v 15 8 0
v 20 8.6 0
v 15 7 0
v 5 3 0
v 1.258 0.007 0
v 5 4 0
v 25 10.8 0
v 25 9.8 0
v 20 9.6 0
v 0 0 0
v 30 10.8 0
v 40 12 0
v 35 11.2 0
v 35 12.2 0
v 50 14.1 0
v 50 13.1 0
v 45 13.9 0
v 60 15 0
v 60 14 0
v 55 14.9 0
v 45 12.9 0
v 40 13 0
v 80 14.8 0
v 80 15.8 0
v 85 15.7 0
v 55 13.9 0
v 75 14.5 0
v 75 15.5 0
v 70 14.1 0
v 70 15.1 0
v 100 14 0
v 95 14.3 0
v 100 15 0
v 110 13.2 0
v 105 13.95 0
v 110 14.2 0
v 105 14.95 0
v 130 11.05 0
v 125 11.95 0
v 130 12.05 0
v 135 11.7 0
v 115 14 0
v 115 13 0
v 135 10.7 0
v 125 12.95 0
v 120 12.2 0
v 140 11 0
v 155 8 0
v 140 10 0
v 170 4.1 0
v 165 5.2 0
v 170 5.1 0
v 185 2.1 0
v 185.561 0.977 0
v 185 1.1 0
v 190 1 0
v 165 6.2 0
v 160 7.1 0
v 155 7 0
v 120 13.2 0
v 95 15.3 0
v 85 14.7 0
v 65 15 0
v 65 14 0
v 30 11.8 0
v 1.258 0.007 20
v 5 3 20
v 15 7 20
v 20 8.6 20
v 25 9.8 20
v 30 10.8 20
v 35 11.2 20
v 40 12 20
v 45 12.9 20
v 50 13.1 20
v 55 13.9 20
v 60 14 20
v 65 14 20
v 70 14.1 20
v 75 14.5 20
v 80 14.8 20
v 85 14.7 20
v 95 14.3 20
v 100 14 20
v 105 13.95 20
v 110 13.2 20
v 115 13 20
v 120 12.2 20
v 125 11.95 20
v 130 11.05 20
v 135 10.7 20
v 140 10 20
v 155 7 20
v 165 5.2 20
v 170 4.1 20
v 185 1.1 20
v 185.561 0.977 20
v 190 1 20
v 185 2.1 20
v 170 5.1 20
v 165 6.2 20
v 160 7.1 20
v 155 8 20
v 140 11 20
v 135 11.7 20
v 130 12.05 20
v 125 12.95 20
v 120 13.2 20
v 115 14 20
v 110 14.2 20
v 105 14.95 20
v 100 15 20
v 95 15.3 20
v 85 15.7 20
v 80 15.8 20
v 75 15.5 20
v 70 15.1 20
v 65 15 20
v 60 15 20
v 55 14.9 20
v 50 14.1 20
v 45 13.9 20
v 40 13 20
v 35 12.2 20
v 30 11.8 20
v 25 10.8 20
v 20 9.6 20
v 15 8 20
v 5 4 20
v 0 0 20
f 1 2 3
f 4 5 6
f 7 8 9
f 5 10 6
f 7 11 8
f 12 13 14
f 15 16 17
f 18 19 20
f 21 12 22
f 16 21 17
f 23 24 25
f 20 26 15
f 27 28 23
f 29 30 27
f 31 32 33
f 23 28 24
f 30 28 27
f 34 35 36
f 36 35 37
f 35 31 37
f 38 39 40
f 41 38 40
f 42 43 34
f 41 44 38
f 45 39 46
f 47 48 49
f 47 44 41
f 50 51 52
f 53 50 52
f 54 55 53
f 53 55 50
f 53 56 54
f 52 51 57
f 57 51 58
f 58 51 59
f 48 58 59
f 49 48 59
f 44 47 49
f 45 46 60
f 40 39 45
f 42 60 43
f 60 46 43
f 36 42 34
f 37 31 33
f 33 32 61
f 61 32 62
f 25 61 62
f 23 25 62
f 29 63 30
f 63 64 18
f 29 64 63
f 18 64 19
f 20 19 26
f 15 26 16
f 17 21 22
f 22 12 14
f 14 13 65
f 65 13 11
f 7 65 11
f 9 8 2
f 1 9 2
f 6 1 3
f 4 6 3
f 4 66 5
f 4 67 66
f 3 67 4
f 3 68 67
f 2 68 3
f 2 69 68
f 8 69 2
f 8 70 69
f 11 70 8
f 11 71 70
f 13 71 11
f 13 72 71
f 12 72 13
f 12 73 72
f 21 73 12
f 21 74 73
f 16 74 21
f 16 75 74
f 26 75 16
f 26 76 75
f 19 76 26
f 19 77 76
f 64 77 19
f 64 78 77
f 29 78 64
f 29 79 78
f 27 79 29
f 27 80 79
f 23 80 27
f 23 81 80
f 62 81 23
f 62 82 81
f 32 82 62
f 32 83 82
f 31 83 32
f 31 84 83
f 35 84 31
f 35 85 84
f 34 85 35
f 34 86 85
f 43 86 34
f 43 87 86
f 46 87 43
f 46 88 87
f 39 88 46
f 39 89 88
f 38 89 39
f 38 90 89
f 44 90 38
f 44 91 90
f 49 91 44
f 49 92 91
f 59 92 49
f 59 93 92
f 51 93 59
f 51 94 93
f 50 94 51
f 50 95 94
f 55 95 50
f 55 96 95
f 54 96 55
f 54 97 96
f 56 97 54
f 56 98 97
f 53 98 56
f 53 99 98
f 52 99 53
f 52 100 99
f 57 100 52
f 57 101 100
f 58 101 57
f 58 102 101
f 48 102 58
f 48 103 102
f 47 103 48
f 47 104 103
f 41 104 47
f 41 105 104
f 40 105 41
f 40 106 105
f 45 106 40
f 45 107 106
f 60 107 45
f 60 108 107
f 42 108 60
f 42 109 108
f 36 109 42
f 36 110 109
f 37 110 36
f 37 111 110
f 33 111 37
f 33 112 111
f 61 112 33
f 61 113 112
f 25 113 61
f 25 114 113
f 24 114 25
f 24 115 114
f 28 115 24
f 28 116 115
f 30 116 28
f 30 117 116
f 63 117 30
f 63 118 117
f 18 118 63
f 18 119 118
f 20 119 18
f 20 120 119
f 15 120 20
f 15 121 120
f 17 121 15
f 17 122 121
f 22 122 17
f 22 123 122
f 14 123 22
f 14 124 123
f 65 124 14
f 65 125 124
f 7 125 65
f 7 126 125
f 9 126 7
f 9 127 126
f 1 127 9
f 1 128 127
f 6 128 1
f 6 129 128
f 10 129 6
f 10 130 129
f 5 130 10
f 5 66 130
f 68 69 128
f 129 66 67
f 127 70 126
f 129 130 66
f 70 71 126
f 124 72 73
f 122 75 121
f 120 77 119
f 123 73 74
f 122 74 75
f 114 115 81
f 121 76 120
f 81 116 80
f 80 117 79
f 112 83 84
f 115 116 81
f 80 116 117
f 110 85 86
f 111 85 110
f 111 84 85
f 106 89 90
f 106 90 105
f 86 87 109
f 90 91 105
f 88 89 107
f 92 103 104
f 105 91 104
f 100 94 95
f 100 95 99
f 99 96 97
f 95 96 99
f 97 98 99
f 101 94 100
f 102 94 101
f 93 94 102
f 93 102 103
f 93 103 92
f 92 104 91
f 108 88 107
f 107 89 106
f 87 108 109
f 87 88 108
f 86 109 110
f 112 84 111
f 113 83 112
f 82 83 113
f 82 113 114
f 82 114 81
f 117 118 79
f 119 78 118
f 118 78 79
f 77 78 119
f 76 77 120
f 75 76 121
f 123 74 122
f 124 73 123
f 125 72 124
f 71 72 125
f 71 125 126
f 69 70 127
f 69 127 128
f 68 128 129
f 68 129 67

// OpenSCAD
module profile() {
    p=[
[0,0],
[5,4],
[10,6],
[15,8],
[20,9.6],
[25,10.8],
[30,11.8],
[35,12.2],
[40,13],
[45,13.9],
[50,14.1],
[55,14.9],
[60,15],
[65,15],
[70,15.1],
[75,15.5],
[80,015.8],
[85,15.7],
[90,15.5],
[95,15.3],
[100,15],
[105,14.95],
[110,14.2],
[115,14],
[120,13.2],
[125,12.95],
[130,12.05],
[135,11.7],
[140,11],
[145,10],
[150,9],
[155,8],
[160,7.1],
[165,6.2],
[170,5.1],
[175,4.1],
[180,3.1],
[185,2.1],
[190,01],
];
polygon(p);
}

linear_extrude(20)
difference() {
profile();
translate([0,-1,0]) profile();
}
